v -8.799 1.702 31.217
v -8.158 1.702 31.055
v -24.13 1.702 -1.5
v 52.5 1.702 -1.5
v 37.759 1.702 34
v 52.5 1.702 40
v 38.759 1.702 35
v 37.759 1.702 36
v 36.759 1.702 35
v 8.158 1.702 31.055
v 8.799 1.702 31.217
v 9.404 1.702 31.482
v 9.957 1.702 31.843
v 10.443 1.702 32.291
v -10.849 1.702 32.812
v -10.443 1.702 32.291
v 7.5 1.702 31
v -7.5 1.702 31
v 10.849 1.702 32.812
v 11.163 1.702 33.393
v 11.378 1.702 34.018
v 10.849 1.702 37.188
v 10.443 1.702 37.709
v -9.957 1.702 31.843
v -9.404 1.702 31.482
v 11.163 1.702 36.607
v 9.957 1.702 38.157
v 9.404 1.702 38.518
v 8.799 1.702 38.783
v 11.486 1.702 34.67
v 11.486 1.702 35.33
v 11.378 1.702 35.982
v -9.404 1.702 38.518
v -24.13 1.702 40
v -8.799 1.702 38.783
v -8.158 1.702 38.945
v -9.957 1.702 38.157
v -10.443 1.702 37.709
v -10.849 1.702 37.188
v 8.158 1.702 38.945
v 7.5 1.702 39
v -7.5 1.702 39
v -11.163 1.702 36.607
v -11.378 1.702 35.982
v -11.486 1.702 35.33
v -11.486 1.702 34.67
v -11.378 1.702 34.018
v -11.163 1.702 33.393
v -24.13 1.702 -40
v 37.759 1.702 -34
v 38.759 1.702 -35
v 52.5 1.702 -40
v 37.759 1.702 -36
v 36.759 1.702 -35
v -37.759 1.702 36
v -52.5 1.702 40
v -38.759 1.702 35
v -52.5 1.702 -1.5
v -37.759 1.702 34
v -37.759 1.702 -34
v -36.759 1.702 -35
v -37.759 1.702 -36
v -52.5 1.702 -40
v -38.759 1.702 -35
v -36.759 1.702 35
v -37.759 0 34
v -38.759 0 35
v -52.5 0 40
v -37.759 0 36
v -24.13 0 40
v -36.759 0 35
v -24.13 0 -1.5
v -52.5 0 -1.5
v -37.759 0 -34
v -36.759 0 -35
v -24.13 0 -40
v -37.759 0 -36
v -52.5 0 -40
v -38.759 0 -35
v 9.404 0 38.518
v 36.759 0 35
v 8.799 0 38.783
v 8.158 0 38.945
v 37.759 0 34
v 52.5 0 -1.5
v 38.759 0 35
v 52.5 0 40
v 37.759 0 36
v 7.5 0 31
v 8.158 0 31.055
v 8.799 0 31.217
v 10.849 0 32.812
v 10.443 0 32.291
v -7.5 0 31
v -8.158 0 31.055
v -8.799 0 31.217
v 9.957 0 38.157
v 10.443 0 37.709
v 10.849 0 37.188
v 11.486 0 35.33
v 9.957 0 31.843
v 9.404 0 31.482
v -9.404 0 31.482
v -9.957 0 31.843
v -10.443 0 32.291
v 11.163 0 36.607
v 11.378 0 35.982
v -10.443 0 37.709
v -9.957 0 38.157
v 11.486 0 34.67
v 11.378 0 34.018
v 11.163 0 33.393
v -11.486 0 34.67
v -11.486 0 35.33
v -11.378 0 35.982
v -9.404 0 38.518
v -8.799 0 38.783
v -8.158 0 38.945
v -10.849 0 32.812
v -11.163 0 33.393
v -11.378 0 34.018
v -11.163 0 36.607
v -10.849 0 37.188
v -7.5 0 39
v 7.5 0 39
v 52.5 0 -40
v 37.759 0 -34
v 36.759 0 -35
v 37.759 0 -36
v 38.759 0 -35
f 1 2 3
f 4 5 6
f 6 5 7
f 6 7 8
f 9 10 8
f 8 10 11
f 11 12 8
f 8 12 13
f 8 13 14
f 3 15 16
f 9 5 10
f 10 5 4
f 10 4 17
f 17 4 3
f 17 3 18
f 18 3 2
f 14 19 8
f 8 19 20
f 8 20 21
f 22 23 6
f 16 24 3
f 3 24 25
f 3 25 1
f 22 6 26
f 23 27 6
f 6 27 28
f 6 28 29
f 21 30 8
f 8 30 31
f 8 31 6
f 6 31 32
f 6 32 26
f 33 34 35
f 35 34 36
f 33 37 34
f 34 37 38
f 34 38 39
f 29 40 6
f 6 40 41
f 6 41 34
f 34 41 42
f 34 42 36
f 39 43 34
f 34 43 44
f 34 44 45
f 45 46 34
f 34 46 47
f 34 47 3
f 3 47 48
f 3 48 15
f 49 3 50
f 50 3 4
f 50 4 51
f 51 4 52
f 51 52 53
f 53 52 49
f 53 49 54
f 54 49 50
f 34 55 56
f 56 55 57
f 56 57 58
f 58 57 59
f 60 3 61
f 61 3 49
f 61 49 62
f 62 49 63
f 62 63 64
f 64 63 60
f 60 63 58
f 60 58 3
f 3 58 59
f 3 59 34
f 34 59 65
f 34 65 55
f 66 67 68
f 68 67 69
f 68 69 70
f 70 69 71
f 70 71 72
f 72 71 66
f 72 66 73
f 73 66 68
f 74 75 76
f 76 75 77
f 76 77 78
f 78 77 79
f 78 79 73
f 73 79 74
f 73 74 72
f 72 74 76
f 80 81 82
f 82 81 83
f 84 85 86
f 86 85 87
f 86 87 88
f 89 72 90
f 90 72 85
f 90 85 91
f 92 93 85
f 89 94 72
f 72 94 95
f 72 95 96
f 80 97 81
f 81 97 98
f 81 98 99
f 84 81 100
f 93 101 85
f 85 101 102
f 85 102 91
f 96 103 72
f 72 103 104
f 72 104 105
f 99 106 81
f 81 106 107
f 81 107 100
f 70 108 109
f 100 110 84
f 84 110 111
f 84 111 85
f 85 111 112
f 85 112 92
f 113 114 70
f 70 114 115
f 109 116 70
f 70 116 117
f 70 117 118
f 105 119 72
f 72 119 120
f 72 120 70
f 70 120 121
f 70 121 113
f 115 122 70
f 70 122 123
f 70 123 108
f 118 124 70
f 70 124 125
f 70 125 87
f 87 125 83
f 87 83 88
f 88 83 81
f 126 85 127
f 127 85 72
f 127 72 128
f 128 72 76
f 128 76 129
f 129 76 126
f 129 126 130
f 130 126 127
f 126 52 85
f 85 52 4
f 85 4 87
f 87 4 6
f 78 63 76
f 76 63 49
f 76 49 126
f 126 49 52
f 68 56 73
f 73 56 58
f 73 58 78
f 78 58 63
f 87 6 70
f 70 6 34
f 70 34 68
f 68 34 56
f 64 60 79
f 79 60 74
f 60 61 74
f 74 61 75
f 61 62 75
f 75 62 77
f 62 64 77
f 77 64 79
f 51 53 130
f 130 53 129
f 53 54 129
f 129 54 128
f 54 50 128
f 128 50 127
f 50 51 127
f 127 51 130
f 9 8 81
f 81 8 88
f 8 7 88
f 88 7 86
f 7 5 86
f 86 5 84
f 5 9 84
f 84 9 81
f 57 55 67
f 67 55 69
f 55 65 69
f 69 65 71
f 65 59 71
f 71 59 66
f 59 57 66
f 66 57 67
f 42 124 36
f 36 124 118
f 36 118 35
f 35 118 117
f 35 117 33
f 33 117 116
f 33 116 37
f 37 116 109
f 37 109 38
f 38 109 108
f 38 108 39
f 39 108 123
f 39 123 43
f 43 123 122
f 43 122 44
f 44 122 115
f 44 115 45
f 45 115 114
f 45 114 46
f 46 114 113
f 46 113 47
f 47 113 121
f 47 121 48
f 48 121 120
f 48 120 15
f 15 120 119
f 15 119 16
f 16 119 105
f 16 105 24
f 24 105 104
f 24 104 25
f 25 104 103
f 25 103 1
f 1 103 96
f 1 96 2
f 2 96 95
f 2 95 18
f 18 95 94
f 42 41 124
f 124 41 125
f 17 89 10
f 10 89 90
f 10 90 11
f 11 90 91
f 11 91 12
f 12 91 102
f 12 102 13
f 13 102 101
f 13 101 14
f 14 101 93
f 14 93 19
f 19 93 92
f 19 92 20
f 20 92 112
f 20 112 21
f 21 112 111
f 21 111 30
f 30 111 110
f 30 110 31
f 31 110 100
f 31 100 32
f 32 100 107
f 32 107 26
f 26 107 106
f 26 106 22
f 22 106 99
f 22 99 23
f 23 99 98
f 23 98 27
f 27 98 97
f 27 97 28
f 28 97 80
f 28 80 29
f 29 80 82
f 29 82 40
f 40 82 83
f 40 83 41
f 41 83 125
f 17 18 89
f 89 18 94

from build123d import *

# Parameters (mm, degrees)
SKETCH_1_W      = 105
SKETCH_1_H      = 80
EXTRUDE_1_DEPTH = 1.702337868


with BuildPart() as part:
    # 草图1 → 凸台-拉伸1 (new body)
    with BuildSketch(Plane(origin=(0, 0, 0), x_dir=(1, 0, 0), z_dir=(0, 1, 0))):
        Rectangle(SKETCH_1_W, SKETCH_1_H)
        Polygon((38.759288178, 35), (37.759288178, 34), (36.759288178, 35), (37.759288178, 36), align=None, mode=Mode.SUBTRACT)
        Polygon((-37.759288178, 34), (-36.759288178, 35), (-37.759288178, 36), (-38.759288178, 35), align=None, mode=Mode.SUBTRACT)
        Polygon((37.759288178, -36), (38.759288178, -35), (37.759288178, -34), (36.759288178, -35), align=None, mode=Mode.SUBTRACT)
        Polygon((-38.759288178, -35), (-37.759288178, -34), (-36.759288178, -35), (-37.759288178, -36), align=None, mode=Mode.SUBTRACT)
        with BuildLine():
            Line((-7.5, -39), (7.5, -39))
            ThreePointArc((7.5, -39), (11.5, -35), (7.5, -31))
            Line((7.5, -31), (-7.5, -31))
            ThreePointArc((-7.5, -31), (-11.5, -35), (-7.5, -39))
        make_face(mode=Mode.SUBTRACT)
    extrude(amount=EXTRUDE_1_DEPTH)


solid = part.part
